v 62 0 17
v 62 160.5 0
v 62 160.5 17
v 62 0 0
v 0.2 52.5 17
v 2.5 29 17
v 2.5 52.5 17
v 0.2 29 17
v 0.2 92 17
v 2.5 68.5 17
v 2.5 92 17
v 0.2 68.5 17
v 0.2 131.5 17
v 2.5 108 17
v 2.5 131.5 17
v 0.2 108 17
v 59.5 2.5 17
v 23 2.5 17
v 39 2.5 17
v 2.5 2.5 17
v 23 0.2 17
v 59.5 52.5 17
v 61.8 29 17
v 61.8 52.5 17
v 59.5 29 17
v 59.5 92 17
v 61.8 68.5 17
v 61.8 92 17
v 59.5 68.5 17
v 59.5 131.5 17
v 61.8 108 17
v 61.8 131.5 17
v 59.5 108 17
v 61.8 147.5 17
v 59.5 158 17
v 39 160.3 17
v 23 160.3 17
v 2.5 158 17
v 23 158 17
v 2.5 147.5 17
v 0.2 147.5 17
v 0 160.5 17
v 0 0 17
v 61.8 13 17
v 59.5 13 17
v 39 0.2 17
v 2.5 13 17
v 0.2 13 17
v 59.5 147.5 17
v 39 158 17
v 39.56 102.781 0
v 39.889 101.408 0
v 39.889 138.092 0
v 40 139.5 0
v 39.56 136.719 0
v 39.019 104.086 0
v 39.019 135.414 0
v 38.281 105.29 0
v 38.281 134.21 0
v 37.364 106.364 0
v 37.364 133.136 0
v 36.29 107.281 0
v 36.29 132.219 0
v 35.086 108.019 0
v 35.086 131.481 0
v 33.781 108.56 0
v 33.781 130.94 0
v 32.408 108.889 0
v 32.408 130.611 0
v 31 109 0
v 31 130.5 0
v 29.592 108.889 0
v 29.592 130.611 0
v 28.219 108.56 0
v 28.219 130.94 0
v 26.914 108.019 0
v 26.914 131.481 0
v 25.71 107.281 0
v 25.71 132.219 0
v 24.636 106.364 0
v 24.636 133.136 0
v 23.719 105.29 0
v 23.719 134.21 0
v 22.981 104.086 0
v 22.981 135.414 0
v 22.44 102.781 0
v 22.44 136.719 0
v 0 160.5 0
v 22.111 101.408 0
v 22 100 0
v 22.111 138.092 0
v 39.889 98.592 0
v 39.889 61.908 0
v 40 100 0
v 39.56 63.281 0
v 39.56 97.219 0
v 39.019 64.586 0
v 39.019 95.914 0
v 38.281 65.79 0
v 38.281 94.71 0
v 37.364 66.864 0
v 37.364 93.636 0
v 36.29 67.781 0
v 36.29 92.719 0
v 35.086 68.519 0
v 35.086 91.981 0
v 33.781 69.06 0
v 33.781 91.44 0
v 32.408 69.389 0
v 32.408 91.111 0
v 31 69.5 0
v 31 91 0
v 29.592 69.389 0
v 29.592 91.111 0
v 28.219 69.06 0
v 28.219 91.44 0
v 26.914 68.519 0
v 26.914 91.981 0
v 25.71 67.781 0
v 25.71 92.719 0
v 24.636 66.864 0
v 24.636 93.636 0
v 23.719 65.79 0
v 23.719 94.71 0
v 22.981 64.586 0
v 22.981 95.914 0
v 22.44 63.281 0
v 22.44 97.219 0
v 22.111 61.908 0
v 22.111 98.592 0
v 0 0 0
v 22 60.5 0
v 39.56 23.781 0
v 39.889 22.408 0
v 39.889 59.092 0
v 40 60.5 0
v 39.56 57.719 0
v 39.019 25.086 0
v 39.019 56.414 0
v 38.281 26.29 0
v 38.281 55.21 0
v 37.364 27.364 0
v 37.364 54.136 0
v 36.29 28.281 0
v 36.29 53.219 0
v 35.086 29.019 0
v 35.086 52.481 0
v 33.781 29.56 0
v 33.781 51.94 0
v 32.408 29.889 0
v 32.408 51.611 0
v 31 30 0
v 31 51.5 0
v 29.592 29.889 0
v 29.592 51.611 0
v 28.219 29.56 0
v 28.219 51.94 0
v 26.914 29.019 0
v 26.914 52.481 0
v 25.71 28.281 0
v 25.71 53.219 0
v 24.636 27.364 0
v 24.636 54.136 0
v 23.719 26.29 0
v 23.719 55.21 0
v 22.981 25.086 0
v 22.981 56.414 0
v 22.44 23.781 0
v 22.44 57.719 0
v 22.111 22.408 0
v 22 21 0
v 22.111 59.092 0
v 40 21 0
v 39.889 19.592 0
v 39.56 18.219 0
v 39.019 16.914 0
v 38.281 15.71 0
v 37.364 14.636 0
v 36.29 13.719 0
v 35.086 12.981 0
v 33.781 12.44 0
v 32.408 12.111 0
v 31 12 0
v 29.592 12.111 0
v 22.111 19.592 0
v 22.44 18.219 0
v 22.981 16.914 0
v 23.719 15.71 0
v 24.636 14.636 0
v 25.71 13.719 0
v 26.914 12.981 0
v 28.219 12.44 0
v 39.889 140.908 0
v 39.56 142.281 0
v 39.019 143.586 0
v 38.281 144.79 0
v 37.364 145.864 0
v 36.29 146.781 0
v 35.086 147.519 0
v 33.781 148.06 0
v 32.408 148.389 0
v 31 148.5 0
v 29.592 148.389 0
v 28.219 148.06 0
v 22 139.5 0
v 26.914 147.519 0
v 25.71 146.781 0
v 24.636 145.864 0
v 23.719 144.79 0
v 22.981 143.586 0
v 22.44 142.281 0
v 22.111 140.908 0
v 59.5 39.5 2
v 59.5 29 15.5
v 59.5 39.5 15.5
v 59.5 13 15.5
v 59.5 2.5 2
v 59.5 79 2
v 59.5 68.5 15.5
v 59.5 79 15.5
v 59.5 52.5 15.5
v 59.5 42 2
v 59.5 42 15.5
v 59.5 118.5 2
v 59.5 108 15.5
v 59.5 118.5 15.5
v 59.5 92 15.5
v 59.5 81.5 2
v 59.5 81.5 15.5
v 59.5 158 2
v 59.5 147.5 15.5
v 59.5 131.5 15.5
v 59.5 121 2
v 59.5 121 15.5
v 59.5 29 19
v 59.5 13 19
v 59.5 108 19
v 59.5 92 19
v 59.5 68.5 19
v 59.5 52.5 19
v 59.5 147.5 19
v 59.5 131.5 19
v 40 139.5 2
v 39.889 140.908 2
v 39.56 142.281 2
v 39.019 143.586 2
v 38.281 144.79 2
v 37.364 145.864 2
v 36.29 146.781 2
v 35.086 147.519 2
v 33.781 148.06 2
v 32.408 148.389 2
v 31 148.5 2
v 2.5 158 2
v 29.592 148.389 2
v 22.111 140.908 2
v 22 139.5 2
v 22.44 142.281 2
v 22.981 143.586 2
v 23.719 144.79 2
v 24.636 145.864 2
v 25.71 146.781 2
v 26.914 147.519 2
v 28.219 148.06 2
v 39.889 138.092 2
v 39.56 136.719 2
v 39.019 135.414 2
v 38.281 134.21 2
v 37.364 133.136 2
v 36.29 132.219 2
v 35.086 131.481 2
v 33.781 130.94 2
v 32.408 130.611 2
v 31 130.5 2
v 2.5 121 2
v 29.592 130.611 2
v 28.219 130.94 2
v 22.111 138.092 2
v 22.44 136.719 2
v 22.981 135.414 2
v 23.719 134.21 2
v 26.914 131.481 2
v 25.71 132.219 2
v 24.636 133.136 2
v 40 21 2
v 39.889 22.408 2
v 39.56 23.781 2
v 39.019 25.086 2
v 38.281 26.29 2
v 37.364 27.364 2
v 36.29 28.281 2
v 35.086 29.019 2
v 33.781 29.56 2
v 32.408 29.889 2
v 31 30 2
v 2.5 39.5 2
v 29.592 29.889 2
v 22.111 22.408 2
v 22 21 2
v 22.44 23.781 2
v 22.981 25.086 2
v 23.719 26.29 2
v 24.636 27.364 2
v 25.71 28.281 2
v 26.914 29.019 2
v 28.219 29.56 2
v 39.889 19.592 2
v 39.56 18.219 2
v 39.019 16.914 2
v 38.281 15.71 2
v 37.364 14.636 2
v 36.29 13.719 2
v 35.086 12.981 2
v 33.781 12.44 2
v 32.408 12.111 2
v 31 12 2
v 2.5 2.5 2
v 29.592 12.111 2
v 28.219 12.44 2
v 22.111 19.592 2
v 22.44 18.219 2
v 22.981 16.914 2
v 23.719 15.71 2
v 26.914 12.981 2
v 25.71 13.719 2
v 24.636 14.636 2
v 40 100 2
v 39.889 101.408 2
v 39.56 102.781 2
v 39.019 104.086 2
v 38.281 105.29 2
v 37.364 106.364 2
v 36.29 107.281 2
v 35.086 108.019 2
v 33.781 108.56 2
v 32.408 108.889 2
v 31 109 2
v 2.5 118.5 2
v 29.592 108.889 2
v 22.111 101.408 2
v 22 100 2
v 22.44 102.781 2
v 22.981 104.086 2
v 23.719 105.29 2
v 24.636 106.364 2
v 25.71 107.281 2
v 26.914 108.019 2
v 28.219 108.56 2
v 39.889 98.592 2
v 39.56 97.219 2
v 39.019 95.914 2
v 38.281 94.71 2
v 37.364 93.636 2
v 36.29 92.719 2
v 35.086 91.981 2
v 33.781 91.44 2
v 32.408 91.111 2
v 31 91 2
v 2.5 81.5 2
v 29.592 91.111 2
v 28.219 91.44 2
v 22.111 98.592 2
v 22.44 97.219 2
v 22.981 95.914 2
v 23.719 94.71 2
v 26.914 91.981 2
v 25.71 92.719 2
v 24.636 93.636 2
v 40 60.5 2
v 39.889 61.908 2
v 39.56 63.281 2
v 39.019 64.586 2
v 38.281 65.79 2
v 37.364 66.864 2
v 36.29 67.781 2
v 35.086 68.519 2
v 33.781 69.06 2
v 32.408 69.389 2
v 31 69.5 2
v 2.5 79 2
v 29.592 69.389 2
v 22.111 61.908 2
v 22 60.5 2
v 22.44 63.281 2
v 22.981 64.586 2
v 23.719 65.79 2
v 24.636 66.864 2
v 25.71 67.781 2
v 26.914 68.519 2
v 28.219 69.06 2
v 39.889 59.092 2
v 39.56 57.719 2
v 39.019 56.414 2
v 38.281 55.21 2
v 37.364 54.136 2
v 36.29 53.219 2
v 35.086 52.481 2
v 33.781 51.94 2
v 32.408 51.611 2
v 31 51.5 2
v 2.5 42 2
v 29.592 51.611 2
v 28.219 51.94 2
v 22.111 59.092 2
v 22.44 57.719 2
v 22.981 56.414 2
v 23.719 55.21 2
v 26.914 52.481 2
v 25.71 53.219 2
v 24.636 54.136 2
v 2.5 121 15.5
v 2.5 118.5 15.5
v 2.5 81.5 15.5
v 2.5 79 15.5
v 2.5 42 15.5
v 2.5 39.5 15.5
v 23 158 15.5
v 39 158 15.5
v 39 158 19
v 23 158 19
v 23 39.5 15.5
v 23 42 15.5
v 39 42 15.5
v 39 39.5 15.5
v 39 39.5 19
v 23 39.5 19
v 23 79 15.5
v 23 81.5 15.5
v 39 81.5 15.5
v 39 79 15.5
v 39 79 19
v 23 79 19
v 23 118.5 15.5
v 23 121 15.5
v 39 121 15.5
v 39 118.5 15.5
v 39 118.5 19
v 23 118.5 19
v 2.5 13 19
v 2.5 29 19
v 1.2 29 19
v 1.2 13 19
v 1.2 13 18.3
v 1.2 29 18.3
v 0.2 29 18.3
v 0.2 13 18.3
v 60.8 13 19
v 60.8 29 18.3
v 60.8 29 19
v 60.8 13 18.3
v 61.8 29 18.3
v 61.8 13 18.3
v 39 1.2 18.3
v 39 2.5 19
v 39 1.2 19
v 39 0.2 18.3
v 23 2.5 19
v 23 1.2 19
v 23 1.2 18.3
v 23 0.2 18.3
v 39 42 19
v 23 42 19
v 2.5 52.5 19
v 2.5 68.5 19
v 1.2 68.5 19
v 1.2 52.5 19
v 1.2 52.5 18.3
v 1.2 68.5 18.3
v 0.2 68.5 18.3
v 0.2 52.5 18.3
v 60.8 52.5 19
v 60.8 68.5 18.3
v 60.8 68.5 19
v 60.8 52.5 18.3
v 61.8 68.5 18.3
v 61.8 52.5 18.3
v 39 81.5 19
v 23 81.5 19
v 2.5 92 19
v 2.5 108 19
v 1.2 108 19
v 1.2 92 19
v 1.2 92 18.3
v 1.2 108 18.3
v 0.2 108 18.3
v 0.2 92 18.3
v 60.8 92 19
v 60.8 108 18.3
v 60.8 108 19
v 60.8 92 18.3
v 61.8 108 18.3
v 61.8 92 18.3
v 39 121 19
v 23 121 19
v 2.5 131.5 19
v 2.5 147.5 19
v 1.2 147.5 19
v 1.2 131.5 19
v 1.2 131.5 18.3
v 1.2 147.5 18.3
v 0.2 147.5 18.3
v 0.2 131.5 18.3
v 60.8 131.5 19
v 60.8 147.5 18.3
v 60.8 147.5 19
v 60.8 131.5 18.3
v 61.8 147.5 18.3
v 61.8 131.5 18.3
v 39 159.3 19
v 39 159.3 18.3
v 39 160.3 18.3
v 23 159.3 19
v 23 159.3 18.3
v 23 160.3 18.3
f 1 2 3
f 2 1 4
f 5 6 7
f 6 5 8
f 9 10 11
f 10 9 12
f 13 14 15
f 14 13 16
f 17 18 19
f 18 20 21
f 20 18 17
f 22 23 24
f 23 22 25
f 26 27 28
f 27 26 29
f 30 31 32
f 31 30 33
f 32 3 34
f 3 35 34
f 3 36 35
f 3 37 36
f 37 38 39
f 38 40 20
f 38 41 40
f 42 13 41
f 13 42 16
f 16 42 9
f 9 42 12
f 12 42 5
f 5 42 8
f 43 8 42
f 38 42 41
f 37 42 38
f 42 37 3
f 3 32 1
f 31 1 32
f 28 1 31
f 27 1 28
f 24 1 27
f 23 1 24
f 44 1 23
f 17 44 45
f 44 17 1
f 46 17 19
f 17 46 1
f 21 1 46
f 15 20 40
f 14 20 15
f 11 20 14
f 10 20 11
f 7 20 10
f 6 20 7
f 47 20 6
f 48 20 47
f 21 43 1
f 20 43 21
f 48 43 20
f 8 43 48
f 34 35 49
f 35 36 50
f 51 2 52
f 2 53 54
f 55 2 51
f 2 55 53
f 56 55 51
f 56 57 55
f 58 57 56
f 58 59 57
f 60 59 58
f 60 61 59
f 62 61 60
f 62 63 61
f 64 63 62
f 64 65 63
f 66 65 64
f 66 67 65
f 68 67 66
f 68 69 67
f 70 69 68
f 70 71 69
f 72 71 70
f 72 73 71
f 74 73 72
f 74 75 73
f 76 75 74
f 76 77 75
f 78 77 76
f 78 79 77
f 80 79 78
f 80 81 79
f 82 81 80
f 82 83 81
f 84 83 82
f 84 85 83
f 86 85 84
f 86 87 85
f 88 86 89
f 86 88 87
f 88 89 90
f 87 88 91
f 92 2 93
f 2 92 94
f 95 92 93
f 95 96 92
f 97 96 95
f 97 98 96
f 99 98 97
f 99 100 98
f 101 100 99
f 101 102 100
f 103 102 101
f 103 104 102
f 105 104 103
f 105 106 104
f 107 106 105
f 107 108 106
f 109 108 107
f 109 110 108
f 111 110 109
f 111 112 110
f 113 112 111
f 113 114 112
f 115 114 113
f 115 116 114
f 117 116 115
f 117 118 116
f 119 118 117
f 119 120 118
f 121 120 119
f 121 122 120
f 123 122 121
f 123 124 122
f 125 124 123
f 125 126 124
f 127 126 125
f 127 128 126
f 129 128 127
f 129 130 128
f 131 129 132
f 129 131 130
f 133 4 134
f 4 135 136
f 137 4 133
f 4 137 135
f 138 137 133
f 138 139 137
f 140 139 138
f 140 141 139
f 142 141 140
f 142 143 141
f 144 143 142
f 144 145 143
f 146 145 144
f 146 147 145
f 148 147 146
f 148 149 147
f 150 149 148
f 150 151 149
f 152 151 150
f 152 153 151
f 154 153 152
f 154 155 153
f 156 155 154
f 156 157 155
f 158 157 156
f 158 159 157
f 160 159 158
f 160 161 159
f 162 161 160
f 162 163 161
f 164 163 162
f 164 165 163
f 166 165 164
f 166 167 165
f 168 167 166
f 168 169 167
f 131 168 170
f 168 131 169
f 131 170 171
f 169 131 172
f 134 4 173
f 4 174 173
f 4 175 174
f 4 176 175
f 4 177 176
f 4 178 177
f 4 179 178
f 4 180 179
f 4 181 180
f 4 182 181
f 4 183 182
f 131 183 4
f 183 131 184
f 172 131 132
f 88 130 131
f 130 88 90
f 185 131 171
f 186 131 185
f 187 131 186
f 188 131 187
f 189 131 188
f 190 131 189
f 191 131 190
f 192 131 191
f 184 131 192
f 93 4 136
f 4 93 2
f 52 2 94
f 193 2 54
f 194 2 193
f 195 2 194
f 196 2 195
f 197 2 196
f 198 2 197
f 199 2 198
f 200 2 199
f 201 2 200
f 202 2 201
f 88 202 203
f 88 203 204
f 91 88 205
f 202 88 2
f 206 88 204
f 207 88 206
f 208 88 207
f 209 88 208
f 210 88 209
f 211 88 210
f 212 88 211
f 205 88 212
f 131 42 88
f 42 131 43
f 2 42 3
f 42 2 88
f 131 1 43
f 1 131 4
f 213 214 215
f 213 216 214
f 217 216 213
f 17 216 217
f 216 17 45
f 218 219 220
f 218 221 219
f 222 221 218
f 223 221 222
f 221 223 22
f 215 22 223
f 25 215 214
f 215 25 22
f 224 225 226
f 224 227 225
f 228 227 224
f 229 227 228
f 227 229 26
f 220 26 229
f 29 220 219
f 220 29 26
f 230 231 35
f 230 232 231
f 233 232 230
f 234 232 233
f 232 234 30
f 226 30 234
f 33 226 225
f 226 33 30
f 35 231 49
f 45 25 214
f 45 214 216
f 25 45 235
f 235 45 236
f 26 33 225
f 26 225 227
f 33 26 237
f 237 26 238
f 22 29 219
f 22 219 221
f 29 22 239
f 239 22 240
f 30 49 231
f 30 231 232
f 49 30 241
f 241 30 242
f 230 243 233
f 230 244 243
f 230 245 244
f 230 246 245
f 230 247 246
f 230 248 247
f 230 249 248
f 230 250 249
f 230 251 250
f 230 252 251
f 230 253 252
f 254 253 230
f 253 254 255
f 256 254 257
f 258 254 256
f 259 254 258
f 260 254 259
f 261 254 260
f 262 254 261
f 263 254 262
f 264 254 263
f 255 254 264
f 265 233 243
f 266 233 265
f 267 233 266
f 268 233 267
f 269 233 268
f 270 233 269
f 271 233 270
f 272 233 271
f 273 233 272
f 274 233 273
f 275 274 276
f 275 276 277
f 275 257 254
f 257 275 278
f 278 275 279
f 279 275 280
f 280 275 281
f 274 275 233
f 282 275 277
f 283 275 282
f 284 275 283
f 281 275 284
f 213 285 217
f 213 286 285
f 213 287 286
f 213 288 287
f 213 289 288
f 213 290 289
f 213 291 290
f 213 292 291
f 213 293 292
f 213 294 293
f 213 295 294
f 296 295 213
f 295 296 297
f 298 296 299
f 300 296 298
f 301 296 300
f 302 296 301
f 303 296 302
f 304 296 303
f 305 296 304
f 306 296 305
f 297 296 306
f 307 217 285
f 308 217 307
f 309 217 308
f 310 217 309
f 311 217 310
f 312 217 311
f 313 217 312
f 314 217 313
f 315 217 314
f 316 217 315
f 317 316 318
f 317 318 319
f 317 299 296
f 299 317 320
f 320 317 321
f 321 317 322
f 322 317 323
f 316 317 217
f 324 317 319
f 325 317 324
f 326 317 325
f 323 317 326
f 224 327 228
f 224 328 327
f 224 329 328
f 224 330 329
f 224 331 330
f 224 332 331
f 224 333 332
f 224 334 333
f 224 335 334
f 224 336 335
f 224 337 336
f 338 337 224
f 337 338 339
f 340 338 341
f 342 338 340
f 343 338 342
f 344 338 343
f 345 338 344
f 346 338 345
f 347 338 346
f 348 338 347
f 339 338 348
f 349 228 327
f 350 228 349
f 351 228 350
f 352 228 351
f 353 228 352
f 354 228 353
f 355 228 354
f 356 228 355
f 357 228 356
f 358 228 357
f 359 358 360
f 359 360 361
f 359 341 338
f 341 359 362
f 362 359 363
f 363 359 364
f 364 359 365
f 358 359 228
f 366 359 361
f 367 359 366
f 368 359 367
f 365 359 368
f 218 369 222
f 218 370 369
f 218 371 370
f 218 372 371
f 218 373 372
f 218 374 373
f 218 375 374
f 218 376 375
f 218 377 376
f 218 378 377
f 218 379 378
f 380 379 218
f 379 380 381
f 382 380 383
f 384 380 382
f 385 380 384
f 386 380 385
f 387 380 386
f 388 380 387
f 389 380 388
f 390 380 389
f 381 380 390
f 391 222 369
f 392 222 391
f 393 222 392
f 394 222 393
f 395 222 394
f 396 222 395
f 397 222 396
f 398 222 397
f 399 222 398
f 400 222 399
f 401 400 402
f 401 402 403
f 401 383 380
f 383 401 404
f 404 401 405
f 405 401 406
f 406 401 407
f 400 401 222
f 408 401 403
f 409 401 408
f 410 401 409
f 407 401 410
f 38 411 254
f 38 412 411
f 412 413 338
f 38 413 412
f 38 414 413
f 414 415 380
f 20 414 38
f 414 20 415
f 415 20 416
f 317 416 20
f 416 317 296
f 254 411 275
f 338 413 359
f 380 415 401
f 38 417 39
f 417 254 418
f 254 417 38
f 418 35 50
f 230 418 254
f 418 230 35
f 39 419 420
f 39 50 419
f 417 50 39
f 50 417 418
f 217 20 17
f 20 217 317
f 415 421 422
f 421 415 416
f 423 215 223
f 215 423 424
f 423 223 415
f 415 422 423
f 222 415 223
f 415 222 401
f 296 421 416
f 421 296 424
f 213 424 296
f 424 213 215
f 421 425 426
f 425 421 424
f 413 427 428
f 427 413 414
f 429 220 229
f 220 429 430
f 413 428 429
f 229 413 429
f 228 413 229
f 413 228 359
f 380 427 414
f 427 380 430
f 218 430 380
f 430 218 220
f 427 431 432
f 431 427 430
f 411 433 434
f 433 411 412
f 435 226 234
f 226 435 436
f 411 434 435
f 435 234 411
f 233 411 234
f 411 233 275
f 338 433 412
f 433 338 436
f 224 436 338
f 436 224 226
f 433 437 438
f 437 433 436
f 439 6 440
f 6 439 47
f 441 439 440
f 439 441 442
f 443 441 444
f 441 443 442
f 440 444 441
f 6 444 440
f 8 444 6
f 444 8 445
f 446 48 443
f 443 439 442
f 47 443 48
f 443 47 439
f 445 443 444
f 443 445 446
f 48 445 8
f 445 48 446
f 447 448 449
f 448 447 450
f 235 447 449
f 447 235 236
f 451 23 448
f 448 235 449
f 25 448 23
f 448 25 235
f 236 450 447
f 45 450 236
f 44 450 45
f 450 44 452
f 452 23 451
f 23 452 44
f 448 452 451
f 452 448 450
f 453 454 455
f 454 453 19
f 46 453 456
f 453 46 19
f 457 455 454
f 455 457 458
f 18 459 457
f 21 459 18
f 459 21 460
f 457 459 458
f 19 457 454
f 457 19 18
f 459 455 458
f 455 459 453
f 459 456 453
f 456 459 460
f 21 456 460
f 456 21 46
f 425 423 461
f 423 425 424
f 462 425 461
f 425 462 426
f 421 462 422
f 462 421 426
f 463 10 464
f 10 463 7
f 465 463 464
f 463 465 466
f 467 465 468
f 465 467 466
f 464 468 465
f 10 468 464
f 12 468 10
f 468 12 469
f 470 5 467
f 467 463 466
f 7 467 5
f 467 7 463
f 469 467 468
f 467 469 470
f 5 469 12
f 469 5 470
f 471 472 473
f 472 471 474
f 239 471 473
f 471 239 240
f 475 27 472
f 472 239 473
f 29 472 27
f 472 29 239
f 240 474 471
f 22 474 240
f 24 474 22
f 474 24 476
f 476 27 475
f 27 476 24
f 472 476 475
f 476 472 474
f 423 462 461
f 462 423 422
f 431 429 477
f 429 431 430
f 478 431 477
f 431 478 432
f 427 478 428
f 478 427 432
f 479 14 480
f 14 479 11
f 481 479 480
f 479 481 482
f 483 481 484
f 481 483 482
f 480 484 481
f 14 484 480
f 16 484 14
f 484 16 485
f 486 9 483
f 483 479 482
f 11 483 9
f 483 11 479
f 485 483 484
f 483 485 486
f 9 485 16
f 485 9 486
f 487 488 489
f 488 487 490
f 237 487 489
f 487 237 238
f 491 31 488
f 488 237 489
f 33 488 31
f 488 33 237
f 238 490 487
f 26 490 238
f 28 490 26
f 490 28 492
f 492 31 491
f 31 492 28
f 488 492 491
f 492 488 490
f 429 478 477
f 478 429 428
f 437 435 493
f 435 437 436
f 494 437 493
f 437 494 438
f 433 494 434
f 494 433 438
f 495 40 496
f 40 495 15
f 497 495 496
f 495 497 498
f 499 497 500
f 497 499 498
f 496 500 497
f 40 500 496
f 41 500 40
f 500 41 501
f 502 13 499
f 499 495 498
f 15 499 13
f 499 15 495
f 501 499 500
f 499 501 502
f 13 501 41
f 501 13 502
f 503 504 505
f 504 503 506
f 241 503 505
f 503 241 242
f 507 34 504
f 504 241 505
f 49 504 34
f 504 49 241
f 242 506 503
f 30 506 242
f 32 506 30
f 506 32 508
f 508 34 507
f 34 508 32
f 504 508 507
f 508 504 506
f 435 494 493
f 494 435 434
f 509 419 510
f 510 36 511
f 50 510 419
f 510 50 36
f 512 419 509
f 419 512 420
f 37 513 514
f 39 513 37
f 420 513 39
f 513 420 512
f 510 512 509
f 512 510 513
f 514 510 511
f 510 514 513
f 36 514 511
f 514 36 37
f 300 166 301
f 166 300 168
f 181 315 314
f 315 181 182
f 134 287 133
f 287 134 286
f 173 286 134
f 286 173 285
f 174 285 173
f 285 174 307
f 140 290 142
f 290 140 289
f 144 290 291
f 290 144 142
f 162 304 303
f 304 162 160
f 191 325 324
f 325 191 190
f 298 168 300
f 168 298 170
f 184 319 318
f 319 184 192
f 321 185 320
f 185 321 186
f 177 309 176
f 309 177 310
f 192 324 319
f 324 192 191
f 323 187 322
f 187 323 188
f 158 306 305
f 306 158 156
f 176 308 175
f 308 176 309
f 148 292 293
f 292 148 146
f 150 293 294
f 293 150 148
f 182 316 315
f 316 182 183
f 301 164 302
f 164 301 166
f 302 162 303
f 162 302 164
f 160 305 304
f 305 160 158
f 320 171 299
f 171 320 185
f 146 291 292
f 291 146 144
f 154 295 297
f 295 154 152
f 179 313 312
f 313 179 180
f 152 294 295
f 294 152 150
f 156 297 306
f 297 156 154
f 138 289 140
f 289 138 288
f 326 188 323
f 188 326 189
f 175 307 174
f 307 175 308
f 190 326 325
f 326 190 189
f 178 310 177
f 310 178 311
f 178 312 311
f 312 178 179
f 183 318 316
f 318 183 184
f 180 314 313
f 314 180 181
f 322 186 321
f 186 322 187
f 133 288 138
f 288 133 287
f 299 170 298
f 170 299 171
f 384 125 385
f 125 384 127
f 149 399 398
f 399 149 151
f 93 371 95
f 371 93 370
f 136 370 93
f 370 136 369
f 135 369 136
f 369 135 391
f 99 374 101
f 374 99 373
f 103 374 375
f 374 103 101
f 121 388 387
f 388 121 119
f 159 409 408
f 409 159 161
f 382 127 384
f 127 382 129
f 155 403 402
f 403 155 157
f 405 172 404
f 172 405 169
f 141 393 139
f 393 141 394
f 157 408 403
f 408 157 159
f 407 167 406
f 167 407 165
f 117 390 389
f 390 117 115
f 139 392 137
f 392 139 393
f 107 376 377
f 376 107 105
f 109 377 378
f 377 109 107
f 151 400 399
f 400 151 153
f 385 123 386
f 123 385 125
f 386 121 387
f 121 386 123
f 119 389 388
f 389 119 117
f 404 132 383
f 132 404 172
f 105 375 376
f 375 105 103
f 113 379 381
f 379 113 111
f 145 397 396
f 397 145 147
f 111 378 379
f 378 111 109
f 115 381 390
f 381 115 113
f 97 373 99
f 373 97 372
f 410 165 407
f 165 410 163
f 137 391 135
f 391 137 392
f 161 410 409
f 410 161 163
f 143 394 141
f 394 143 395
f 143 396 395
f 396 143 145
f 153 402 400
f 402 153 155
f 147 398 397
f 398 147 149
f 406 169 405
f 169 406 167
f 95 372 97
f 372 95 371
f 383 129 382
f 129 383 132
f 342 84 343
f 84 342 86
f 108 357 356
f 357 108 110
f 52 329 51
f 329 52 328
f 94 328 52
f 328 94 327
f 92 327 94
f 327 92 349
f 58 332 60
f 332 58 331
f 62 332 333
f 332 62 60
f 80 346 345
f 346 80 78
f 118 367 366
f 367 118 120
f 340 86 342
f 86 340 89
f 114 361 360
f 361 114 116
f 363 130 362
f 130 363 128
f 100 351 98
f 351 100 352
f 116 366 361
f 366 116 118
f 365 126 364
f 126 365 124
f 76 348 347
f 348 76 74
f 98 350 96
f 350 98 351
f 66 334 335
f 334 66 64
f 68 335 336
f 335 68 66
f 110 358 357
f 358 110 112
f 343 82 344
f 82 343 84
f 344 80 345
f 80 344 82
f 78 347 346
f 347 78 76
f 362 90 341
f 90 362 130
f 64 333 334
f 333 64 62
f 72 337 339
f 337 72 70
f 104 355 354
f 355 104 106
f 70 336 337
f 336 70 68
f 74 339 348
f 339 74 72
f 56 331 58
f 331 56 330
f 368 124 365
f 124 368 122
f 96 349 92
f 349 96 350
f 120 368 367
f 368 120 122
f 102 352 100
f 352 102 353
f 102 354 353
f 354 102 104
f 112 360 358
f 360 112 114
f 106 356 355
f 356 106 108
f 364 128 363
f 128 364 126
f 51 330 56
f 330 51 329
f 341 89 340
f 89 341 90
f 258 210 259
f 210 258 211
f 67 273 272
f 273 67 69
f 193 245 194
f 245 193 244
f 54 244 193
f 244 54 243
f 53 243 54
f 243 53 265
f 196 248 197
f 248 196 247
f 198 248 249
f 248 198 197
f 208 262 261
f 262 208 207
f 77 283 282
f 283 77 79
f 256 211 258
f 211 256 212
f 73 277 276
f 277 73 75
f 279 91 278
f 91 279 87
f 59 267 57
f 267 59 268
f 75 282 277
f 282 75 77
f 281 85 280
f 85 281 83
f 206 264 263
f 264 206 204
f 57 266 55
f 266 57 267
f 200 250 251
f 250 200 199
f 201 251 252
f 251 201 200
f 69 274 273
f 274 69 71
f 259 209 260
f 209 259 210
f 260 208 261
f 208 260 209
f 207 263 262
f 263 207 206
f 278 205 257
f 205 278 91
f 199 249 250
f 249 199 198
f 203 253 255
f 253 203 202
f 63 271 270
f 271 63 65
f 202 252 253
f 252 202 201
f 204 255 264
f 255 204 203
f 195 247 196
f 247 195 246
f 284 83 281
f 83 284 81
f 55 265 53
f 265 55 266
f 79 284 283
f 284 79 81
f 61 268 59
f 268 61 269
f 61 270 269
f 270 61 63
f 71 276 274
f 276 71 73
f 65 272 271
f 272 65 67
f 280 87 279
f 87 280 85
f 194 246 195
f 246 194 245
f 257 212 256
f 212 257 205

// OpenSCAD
// Battery Case for 4x Olympus BLS-5 batteries
// Battery dimensions: 56mm x 36mm x 13mm
// Arrangement: 4x1 linear, standing on 36x13mm face
// Batteries face each other with their largest (56mm x 13mm) face

// Battery dimensions
battery_length = 56;  // longest dimension (faces each other)
battery_width = 36;   // medium dimension (runs along the row)
battery_height = 13;  // smallest dimension (standing height)

// Case parameters
wall_thickness = 2.5;
base_thickness = 2.0;
clearance = 0.5;  // clearance around battery

// Slot dimensions (with clearance)
slot_length = battery_length + clearance * 2;
slot_width = battery_width + clearance * 2;
slot_height = battery_height + clearance;

// Finger hole for removal
finger_hole_diameter = 18;

// Snap-fit parameters
snap_height = 3.5;  // how much the snap protrudes above slot
snap_depth = 1.0;   // how deep the snap hook is
snap_flex_width = 16;  // width of flexible snap arm
snap_thickness = 1.3;  // thickness of snap arm for flexibility

num_batteries = 4;

// Total case dimensions
case_inner_length = slot_length;
case_inner_width = slot_width * num_batteries + wall_thickness * (num_batteries - 1);
case_outer_length = case_inner_length + wall_thickness * 2;
case_outer_width = case_inner_width + wall_thickness * 2;
case_height = slot_height + snap_height;

echo("Case outer dimensions (LxWxH):", case_outer_length, "x", case_outer_width, "x", case_height, "mm");

module complete_case() {
    difference() {
        union() {
            // Base plate
            cube([case_outer_length, case_outer_width, base_thickness]);
            
            // Outer walls
            difference() {
                cube([case_outer_length, case_outer_width, case_height]);
                translate([wall_thickness, wall_thickness, base_thickness])
                    cube([case_inner_length, case_inner_width, case_height]);
            }
            
            // Internal dividers between battery slots
            for (i = [1:num_batteries - 1]) {
                translate([wall_thickness, 
                          wall_thickness + i * slot_width + (i - 1) * wall_thickness, 
                          base_thickness])
                    cube([slot_length, wall_thickness, slot_height]);
            }
            
            // Snap-fit retention system for each slot
            for (i = [0:num_batteries - 1]) {
                translate([wall_thickness, 
                          wall_thickness + i * (slot_width + wall_thickness), 
                          base_thickness]) {
                    
                    // Snap tabs on the LONG sides (left and right)
                    // These hold the 56mm face of the battery
                    for (side = [0, 1]) {
                        translate([side * slot_length - (side == 0 ? snap_thickness : 0), 
                                  slot_width / 2 - snap_flex_width / 2,
                                  slot_height]) {
                            
                            difference() {
                                union() {
                                    // Vertical flexible arm
                                    cube([snap_thickness, snap_flex_width, snap_height]);
                                    
                                    // Inward-facing hook lip
                                    translate([side == 0 ? -snap_depth : snap_thickness, 
                                              0, 
                                              snap_height * 0.35])
                                        cube([snap_depth, snap_flex_width, snap_height * 0.45]);
                                }
                                
                                // Entry chamfer for easy insertion
                                translate([side == 0 ? -snap_depth - 0.5 : snap_thickness + snap_depth + 0.5, 
                                          snap_flex_width / 2, 
                                          snap_height + 0.5])
                                    rotate([0, side == 0 ? -38 : 38, 0])
                                    translate([-3, -snap_flex_width, -1])
                                    cube([6, snap_flex_width * 2, 4]);
                            }
                        }
                    }
                    
                    // Snap tabs on the SHORT sides (front and back)
                    // These hold the 36mm face of the battery
                    for (side = [0, 1]) {
                        translate([slot_length / 2 - snap_flex_width / 2,
                                  side * slot_width - (side == 0 ? snap_thickness : 0),
                                  slot_height]) {
                            
                            difference() {
                                union() {
                                    // Vertical flexible arm
                                    cube([snap_flex_width, snap_thickness, snap_height]);
                                    
                                    // Inward-facing hook lip
                                    translate([0,
                                              side == 0 ? -snap_depth : snap_thickness, 
                                              snap_height * 0.35])
                                        cube([snap_flex_width, snap_depth, snap_height * 0.45]);
                                }
                                
                                // Entry chamfer for easy insertion
                                translate([snap_flex_width / 2,
                                          side == 0 ? -snap_depth - 0.5 : snap_thickness + snap_depth + 0.5, 
                                          snap_height + 0.5])
                                    rotate([side == 0 ? 38 : -38, 0, 0])
                                    translate([-snap_flex_width, -3, -1])
                                    cube([snap_flex_width * 2, 6, 4]);
                            }
                        }
                    }
                }
            }
        }
        
        // Finger holes for battery removal (one per slot)
        for (i = [0:num_batteries - 1]) {
            translate([wall_thickness + slot_length / 2, 
                      wall_thickness + slot_width / 2 + i * (slot_width + wall_thickness), 
                      -0.1])
                cylinder(d = finger_hole_diameter, h = base_thickness + 0.2, $fn = 40);
        }
    }
}

complete_case();
